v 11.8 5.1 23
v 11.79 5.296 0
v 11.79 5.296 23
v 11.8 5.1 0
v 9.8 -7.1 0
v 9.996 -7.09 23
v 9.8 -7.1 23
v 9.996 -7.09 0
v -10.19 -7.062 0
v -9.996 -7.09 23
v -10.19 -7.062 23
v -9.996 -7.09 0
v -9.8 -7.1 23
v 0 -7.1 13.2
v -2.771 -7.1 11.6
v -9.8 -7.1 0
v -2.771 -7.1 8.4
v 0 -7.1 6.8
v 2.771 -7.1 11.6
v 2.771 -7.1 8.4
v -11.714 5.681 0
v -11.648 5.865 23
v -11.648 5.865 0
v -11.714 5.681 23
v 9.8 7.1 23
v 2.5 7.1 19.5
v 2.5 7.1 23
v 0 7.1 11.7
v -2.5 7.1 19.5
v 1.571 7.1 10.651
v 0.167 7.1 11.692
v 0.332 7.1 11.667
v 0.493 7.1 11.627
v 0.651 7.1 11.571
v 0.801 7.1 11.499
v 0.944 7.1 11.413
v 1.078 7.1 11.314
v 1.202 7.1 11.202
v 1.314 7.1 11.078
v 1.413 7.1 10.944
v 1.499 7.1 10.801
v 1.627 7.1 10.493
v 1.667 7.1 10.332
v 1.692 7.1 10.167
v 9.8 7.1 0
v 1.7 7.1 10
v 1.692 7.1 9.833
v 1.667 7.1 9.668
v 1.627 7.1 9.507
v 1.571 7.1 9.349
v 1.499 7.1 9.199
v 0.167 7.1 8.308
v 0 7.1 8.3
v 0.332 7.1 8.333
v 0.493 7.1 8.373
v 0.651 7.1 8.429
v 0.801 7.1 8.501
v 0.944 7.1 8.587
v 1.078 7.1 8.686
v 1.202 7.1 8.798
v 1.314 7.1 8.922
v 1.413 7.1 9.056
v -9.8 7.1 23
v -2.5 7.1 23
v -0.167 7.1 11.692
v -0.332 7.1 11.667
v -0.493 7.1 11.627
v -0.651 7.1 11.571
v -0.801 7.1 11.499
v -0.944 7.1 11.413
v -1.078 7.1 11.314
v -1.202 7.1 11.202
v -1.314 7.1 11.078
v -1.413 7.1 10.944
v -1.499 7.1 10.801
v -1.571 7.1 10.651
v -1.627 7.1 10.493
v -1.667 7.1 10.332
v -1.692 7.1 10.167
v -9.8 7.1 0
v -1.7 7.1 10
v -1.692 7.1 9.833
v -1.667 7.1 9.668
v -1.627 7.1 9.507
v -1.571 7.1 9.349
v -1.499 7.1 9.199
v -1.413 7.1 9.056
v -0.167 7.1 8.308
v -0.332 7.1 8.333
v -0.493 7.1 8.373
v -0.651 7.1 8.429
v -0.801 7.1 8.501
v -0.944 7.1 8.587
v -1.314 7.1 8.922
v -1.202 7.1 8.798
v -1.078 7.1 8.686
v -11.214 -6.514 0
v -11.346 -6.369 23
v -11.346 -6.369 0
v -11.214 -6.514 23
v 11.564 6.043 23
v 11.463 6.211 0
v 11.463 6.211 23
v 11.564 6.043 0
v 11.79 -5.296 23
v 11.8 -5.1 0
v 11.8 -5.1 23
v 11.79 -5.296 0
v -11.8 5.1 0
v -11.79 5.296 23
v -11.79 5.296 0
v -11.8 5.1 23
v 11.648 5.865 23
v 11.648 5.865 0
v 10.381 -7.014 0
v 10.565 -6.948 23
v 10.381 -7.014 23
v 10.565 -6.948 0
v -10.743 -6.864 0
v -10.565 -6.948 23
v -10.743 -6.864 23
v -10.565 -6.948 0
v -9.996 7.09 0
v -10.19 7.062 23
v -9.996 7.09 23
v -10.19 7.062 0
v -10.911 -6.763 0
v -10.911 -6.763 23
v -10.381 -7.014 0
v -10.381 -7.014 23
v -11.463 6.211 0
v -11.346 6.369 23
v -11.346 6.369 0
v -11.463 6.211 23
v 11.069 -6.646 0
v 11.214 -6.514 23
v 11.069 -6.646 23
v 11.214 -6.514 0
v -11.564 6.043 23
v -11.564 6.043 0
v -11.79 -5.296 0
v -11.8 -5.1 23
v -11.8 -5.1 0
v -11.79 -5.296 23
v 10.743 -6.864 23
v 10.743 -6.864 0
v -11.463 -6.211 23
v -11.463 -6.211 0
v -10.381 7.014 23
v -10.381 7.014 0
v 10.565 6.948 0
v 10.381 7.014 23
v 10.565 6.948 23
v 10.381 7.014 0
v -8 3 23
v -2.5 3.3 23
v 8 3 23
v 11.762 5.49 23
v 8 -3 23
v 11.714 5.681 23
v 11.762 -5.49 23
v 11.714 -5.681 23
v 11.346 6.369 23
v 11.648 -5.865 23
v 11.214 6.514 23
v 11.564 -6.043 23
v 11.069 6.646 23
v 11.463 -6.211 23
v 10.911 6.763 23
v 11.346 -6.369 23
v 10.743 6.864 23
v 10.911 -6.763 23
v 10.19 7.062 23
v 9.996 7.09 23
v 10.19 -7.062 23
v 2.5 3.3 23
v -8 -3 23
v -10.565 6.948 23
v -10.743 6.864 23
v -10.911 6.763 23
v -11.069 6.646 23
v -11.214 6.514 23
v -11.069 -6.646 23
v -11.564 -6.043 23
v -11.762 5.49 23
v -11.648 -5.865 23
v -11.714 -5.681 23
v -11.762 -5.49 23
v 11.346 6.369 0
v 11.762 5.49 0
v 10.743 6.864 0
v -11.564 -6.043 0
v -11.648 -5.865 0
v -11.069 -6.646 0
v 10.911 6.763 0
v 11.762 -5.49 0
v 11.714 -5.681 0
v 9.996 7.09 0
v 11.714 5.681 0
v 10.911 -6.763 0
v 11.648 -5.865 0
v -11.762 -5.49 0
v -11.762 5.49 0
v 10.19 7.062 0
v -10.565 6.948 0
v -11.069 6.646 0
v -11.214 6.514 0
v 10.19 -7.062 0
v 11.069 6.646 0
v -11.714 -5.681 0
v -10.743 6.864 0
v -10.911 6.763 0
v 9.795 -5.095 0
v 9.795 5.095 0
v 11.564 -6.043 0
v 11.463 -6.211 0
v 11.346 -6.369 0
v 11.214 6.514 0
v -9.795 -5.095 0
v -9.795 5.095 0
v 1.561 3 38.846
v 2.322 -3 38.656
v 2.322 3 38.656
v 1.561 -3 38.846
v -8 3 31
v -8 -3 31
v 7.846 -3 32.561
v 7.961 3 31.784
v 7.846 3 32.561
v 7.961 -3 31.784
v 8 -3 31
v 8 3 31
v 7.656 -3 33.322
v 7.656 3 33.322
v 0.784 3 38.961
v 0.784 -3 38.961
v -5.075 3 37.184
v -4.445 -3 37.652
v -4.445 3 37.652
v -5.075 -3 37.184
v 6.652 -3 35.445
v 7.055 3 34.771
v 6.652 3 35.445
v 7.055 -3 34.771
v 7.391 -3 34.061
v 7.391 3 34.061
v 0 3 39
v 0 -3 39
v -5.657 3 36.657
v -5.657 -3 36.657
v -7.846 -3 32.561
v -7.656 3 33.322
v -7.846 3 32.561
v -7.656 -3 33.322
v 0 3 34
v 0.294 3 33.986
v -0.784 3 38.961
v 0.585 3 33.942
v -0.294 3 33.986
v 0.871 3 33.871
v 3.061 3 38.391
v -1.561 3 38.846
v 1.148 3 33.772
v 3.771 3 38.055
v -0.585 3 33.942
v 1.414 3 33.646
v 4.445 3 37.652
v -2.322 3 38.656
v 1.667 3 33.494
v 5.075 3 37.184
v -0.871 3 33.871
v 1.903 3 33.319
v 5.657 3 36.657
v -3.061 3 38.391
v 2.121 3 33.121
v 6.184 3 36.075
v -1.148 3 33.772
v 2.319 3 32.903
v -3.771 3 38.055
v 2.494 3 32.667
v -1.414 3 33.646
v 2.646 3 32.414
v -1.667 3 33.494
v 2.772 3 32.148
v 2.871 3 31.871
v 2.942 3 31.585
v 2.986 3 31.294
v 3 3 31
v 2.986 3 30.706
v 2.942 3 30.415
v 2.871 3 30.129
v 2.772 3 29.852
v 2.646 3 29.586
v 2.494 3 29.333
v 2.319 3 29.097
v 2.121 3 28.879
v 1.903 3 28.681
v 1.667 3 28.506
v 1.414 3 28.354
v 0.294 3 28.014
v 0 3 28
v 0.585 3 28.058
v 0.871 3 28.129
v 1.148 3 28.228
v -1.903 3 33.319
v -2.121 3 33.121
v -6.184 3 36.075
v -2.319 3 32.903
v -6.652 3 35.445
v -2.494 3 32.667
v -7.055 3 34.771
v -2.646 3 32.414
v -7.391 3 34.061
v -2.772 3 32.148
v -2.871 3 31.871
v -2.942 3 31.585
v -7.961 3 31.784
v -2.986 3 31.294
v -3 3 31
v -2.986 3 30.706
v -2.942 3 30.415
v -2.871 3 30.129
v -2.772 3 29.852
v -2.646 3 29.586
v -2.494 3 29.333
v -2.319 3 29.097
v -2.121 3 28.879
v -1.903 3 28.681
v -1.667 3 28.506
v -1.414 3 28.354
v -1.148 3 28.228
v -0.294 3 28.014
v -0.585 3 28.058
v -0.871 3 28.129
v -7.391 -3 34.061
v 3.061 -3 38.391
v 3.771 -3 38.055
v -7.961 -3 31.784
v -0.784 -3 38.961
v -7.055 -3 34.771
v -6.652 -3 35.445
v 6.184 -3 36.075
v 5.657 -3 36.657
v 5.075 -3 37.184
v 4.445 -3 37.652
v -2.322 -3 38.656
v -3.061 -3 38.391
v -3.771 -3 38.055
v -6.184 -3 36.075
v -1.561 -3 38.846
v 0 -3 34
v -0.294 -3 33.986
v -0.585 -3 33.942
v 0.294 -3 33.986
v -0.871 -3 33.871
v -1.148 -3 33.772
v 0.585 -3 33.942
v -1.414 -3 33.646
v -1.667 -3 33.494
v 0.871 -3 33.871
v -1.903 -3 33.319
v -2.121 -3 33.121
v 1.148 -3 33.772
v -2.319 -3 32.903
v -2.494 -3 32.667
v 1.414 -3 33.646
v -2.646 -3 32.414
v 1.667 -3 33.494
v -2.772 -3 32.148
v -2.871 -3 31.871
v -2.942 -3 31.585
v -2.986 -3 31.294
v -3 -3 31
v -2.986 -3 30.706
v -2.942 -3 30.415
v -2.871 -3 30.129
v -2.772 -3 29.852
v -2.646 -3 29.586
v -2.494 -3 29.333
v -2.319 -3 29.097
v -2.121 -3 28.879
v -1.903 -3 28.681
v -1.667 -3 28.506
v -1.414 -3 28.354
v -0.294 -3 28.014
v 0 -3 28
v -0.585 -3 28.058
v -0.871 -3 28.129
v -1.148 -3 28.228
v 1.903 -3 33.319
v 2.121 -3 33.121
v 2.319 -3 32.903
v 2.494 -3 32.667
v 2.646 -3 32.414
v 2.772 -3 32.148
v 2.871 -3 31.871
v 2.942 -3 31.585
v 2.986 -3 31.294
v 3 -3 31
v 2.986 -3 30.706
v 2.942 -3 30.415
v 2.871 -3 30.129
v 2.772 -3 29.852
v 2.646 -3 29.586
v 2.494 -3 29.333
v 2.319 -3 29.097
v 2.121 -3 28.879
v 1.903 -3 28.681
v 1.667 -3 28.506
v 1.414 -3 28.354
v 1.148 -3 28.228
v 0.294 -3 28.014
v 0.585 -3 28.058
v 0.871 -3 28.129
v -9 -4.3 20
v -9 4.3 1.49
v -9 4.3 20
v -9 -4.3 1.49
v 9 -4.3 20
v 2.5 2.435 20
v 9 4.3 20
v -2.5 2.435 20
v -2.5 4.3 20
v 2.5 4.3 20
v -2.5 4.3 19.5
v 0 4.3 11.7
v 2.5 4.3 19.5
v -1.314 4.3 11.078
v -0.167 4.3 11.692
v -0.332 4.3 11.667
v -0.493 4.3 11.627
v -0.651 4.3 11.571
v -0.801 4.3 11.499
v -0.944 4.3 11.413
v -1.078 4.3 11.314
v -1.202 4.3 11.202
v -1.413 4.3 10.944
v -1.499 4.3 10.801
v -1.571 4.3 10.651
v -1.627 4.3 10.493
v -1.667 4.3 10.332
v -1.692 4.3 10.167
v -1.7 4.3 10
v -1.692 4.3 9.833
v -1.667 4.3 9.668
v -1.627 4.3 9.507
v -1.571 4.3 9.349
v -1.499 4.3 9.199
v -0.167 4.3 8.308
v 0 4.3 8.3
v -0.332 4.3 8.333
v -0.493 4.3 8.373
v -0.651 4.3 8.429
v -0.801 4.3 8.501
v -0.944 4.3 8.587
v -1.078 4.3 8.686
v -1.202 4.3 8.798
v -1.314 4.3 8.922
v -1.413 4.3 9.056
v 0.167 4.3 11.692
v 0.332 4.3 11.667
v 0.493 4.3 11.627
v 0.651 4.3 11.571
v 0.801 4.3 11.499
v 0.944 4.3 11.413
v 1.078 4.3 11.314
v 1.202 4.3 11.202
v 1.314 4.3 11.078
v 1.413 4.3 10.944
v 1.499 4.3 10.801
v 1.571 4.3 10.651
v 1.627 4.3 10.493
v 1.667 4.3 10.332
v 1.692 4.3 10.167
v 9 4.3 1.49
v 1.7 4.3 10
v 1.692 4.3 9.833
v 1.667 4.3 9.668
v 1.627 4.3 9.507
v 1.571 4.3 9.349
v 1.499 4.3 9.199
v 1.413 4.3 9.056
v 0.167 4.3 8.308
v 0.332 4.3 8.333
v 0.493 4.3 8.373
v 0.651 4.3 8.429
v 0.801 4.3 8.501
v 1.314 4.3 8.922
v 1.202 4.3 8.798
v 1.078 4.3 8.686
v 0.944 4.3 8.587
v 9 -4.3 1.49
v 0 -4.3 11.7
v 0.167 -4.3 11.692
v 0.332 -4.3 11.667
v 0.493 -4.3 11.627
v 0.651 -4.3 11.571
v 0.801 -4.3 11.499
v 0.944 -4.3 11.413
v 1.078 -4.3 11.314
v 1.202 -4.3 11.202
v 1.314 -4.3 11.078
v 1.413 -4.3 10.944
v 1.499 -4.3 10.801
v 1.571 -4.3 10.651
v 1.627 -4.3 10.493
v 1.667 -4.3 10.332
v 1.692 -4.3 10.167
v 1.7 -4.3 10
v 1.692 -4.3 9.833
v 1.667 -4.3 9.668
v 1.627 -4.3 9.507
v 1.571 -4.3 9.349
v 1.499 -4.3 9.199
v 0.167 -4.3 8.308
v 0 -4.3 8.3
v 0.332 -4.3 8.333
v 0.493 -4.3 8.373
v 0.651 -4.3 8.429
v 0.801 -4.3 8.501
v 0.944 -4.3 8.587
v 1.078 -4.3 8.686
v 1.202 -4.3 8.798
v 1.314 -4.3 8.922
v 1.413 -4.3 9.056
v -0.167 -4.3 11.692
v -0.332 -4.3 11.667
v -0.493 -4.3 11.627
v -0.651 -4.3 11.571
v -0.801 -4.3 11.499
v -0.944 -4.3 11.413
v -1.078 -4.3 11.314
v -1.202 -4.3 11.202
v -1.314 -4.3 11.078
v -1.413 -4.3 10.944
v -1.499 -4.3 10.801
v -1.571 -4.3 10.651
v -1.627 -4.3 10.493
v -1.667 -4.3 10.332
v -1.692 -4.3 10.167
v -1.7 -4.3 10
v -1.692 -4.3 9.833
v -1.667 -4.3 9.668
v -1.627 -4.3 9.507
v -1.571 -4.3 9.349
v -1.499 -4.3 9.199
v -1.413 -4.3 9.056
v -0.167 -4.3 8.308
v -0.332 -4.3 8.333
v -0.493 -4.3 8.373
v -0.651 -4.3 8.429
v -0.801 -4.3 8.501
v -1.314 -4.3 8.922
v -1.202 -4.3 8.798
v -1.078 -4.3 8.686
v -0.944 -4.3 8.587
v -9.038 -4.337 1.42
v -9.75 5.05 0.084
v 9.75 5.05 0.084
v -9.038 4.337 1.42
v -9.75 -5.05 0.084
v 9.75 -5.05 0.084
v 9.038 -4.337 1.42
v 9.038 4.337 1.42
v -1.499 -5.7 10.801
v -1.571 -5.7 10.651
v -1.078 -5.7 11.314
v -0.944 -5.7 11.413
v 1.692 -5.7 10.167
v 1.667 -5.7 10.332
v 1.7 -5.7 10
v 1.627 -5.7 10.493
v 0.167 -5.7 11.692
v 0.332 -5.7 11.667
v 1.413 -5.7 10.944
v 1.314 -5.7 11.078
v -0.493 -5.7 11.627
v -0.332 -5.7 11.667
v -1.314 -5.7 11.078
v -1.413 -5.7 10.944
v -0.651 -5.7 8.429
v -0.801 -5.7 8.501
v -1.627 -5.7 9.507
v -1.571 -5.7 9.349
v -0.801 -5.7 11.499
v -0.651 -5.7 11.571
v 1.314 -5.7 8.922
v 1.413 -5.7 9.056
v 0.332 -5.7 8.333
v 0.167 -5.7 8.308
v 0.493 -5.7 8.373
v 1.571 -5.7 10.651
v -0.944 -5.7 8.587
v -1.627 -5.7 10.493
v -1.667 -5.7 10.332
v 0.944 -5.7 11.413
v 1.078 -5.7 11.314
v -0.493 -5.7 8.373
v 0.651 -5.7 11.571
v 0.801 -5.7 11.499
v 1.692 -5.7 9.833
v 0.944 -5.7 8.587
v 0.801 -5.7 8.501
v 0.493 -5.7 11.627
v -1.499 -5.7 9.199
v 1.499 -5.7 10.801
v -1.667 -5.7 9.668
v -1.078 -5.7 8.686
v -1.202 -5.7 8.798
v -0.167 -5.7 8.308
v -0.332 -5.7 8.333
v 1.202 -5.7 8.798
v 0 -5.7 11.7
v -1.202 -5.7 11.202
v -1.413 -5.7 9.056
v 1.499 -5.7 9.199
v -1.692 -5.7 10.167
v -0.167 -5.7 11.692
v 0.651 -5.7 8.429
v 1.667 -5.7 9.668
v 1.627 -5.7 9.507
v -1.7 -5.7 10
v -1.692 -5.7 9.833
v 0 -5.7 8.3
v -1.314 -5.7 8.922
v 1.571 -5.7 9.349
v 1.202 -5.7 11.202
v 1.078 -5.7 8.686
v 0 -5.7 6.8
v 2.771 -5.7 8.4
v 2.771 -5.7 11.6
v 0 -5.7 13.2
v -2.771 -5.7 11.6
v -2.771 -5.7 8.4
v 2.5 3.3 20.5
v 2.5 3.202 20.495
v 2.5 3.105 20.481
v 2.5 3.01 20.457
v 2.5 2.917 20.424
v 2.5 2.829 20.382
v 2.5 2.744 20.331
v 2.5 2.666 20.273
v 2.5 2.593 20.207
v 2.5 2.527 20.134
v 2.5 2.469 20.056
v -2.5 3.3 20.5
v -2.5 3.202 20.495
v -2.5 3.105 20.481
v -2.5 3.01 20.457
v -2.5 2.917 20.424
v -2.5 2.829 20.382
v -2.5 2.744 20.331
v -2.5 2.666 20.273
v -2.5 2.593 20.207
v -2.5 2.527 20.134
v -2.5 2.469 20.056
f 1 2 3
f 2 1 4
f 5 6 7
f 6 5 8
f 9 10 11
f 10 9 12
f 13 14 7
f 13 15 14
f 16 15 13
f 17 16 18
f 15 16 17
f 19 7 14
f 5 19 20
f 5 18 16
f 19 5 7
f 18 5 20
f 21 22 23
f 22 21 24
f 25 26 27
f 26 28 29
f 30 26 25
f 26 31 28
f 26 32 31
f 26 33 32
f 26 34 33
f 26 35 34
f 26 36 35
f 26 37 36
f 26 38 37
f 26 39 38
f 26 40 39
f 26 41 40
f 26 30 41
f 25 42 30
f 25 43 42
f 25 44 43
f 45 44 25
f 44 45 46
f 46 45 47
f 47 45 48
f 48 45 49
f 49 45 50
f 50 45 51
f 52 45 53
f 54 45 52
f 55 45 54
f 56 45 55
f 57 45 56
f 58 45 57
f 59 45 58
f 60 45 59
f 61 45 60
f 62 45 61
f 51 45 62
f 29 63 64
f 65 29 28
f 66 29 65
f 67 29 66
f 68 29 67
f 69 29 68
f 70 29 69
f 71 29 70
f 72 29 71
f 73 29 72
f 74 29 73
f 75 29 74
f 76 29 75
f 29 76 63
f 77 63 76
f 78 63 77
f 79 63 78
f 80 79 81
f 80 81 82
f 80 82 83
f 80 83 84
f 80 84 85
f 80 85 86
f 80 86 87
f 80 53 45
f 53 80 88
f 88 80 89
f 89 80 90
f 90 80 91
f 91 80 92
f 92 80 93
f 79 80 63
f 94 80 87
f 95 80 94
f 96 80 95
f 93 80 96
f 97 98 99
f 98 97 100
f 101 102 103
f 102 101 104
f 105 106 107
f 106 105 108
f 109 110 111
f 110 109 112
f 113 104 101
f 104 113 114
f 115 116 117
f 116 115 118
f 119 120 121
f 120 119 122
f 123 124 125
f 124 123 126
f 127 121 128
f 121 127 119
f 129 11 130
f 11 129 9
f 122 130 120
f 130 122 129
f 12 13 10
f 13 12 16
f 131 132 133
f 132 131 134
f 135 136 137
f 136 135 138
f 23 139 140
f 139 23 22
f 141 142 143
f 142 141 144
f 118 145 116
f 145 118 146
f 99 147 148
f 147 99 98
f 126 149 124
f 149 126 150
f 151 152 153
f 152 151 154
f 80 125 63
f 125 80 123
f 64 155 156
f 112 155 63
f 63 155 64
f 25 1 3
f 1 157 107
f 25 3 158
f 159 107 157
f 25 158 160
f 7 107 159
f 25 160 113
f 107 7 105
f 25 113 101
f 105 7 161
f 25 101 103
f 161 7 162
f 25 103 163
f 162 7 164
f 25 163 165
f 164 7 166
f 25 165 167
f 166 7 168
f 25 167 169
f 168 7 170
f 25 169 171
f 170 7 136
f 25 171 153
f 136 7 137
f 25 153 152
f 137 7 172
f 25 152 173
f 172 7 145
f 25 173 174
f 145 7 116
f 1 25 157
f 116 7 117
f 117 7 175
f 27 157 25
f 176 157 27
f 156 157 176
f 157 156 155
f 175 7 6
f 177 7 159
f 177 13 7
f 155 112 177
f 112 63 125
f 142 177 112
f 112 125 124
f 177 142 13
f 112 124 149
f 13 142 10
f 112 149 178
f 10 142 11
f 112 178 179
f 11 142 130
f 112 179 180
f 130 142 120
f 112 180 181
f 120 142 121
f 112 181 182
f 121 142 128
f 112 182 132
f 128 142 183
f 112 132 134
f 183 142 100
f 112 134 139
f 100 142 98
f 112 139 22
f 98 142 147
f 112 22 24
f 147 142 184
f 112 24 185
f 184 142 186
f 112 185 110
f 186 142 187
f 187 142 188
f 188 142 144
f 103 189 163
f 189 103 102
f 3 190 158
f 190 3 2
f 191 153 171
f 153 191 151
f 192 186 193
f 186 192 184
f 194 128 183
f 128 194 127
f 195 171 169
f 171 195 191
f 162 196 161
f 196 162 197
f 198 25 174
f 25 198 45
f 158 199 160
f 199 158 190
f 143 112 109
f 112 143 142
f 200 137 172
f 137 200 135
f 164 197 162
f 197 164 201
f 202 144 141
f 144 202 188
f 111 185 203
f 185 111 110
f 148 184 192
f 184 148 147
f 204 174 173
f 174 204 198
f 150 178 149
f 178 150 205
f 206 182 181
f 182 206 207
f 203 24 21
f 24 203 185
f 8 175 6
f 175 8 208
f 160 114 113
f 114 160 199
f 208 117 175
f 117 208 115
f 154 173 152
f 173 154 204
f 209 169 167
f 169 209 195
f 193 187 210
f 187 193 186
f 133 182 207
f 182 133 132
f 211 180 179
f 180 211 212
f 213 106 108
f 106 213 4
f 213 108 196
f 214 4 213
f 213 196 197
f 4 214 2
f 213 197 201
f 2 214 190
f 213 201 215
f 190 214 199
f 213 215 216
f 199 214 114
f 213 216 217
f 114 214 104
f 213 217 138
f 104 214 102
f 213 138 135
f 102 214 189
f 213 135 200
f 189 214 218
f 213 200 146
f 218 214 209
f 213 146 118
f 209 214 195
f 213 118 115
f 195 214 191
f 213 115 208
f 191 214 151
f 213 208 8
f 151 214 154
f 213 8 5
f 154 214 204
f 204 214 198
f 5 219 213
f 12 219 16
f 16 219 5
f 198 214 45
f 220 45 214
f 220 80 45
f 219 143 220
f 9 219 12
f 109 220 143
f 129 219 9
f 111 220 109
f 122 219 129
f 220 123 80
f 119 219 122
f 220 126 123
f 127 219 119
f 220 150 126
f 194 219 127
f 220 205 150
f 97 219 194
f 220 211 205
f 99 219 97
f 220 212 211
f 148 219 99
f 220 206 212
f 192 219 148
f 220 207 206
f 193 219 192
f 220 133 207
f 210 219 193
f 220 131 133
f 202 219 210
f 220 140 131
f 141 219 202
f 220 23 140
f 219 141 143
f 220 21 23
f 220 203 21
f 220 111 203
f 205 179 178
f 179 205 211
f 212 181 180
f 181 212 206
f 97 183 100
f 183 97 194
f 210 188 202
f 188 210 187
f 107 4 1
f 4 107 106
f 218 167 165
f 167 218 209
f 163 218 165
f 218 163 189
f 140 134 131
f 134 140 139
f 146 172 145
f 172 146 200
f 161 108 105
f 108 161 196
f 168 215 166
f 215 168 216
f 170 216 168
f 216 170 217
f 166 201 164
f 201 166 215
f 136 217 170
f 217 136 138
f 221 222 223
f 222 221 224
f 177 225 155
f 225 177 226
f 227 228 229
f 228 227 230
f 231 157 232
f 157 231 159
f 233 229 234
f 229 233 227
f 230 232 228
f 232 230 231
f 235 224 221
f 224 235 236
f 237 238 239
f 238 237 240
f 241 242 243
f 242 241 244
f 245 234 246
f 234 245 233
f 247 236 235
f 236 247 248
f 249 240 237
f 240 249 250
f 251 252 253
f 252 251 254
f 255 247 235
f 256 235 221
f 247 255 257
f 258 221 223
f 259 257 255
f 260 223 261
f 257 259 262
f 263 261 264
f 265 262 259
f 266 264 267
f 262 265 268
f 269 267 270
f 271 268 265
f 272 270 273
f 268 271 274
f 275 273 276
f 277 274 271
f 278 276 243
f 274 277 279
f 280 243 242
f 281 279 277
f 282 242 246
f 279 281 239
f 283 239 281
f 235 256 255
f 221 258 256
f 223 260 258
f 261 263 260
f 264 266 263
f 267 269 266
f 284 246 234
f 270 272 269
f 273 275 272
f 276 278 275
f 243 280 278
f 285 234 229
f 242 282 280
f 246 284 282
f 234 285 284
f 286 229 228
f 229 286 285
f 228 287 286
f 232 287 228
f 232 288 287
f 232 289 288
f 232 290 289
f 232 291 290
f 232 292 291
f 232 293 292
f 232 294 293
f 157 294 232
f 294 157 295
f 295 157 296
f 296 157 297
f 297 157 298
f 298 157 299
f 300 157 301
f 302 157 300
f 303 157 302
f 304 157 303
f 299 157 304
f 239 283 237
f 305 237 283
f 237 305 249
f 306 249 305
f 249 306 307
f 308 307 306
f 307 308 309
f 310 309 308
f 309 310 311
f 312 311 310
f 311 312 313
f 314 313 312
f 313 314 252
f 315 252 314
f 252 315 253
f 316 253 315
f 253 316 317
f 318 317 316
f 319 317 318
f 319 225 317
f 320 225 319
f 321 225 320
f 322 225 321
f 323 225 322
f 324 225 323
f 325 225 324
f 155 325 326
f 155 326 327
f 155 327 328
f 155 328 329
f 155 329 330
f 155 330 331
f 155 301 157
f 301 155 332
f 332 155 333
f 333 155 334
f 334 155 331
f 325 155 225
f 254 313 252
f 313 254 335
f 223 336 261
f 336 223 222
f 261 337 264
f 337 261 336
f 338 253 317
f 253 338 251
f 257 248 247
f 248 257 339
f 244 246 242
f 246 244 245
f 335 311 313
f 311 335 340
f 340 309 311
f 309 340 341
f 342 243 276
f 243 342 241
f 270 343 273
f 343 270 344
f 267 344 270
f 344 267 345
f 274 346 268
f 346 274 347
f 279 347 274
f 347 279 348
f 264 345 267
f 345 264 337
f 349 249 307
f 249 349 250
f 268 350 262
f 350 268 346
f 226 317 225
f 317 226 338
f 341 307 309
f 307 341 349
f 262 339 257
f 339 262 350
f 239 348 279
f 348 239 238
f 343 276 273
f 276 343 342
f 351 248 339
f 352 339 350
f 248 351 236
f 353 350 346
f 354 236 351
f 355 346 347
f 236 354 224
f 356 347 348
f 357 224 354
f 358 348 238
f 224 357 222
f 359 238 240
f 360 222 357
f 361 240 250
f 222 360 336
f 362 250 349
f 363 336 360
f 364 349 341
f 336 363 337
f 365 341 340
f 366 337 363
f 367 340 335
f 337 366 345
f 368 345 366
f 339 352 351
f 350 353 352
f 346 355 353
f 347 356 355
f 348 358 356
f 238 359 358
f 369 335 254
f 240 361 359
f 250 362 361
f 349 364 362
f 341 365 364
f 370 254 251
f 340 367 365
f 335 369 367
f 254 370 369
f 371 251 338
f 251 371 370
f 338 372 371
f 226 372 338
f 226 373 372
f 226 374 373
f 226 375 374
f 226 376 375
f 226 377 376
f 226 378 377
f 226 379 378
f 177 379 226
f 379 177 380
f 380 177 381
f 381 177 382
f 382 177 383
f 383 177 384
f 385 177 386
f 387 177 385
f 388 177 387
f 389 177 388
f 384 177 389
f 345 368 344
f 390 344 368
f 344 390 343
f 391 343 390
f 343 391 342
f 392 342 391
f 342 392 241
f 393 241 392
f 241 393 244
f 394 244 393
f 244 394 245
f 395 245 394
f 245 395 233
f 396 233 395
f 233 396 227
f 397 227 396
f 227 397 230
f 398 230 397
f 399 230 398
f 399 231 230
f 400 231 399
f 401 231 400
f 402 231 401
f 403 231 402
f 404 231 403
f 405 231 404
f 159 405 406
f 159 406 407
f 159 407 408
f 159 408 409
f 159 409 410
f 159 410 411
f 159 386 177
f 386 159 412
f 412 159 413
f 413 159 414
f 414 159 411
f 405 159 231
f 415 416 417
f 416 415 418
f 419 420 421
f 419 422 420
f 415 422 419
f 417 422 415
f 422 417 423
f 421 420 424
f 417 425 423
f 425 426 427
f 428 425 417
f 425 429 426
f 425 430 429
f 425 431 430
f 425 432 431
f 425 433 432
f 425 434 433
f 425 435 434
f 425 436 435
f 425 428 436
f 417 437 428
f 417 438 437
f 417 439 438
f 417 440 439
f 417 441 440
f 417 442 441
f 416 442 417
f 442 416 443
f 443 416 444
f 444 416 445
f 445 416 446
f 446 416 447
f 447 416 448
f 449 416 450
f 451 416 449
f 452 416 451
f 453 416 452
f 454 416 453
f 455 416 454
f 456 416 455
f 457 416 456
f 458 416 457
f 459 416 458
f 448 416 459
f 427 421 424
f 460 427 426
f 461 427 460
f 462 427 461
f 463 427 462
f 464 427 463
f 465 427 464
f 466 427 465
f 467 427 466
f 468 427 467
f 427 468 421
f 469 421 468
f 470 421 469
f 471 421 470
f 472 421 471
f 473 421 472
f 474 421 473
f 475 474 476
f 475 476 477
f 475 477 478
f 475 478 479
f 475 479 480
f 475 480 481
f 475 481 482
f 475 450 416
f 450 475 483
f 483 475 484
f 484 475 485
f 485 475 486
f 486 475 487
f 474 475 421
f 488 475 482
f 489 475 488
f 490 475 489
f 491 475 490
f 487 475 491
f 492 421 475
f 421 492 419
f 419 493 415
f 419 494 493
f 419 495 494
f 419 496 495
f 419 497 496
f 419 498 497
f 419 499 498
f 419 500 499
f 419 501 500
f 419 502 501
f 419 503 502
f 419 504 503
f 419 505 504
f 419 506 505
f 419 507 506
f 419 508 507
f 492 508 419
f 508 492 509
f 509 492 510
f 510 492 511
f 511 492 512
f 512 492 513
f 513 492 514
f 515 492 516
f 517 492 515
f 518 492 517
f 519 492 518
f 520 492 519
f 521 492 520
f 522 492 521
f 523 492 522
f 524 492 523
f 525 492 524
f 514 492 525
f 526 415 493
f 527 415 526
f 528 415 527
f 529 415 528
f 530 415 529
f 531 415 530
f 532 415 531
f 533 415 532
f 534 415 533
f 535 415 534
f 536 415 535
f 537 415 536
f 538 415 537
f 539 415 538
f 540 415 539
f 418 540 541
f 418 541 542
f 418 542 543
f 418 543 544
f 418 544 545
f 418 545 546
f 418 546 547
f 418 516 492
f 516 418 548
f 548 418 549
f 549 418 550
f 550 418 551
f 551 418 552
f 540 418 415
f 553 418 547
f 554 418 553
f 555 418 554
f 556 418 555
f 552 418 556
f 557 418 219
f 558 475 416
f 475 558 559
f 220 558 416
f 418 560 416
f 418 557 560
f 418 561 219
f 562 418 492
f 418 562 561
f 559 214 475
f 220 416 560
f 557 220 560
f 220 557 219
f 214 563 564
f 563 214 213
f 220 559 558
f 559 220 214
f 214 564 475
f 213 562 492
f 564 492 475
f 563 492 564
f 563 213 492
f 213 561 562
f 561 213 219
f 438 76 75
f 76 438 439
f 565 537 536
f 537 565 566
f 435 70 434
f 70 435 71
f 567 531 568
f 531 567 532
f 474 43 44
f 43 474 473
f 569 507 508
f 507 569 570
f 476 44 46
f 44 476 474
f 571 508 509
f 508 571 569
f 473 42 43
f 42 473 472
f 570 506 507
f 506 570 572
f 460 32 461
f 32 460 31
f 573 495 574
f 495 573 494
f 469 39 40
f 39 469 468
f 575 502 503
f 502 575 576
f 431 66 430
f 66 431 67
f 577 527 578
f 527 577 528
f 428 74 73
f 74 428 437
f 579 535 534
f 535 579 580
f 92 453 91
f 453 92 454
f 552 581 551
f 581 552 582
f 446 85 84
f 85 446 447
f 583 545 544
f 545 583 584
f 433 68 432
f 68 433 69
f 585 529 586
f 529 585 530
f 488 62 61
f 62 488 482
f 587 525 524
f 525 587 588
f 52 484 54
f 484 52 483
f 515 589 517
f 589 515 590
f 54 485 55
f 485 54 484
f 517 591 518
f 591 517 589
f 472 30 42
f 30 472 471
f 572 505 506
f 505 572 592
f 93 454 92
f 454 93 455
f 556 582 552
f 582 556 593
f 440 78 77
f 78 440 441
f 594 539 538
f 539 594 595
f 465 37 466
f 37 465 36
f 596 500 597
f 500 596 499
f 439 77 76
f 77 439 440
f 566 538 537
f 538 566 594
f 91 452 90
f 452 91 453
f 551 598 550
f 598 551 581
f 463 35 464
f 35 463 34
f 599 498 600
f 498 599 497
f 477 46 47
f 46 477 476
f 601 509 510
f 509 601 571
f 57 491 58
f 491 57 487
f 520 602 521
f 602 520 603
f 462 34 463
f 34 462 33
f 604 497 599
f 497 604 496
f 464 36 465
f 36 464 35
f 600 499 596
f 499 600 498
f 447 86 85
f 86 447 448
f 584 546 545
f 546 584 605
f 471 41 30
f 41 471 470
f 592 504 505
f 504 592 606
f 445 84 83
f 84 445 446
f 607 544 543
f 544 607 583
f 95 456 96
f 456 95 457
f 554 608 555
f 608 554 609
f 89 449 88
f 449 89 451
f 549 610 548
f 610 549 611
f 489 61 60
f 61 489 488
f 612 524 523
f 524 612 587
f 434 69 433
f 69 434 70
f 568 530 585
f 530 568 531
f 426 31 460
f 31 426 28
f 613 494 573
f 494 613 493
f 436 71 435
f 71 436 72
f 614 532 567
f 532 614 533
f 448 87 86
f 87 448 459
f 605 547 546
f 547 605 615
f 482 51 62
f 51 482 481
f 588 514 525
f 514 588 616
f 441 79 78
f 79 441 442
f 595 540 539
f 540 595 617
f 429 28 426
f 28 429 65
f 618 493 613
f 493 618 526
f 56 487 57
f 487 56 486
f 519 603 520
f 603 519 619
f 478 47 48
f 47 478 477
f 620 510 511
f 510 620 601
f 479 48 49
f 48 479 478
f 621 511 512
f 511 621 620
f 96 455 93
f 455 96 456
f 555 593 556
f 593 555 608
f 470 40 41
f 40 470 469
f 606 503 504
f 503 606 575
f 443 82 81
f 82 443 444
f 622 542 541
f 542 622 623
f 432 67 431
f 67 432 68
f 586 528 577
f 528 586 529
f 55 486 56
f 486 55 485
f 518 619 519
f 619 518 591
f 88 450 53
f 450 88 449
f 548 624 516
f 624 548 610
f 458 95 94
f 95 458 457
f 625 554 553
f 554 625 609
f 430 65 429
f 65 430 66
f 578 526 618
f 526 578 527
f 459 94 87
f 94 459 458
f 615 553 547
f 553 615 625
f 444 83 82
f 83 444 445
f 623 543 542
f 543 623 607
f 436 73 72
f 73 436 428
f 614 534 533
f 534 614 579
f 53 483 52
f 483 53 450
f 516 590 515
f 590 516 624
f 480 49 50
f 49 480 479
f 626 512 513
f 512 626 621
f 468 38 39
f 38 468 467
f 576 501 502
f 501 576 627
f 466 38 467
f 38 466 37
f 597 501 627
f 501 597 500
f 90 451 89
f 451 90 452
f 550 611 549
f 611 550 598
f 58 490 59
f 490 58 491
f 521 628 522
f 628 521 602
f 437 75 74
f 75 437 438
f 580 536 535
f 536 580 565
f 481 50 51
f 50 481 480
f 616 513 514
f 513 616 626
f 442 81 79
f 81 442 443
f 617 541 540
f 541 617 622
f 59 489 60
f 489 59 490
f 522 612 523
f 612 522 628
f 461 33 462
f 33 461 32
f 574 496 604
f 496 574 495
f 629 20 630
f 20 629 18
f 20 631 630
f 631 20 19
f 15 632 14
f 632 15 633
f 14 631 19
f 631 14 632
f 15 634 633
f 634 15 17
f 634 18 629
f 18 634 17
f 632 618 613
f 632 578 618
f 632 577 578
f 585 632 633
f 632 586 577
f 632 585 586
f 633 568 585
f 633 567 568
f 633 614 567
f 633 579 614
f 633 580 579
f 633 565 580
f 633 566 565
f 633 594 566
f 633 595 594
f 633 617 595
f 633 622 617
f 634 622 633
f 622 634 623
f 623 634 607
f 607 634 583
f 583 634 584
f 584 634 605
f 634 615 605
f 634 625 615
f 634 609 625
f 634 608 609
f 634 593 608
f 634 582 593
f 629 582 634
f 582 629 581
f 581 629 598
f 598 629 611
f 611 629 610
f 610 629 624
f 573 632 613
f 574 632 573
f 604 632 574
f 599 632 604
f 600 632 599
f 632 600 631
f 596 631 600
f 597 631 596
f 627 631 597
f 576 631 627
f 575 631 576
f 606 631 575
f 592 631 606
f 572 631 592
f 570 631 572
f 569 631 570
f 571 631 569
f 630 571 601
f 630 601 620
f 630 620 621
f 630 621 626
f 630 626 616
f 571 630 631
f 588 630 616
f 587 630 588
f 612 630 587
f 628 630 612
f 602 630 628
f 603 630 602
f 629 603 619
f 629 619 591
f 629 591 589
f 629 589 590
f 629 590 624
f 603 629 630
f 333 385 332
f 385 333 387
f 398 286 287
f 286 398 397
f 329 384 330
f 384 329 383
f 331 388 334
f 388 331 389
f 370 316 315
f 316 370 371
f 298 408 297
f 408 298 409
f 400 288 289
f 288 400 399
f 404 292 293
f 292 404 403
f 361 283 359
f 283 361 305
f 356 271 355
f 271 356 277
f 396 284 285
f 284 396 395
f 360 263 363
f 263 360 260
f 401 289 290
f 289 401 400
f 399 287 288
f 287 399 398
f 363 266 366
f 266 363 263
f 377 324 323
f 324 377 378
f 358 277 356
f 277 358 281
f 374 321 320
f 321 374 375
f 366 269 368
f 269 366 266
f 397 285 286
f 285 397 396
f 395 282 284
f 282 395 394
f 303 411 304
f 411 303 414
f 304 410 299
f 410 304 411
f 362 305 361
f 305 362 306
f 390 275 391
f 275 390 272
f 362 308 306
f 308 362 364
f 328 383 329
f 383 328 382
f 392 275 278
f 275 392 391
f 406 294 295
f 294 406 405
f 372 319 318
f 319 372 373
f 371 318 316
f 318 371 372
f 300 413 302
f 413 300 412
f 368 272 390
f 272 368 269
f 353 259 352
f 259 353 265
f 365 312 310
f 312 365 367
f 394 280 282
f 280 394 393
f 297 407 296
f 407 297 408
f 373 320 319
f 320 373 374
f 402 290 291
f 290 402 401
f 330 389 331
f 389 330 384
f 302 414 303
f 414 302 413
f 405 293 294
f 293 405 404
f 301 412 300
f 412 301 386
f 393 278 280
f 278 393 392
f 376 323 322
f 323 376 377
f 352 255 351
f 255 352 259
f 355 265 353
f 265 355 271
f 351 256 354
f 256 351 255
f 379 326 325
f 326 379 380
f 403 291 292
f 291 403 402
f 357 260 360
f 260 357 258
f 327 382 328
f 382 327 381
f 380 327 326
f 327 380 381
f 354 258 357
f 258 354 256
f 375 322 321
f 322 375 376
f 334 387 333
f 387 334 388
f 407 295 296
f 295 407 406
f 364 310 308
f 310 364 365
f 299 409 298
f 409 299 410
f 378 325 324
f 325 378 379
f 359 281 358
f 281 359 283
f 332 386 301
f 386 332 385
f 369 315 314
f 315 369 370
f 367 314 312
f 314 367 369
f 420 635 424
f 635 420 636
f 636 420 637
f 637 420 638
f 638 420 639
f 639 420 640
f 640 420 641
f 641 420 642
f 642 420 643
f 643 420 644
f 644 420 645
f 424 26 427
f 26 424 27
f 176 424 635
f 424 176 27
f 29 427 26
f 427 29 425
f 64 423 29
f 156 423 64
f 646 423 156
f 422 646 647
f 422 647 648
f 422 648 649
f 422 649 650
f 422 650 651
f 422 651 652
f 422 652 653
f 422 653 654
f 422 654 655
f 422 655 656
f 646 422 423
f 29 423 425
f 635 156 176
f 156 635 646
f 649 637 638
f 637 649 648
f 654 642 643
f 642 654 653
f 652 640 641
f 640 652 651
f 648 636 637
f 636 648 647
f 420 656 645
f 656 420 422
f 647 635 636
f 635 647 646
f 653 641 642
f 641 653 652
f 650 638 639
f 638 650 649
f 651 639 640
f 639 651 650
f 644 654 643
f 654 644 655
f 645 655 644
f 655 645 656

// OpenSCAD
// ==================================================
// Závěsná koncovka pro LED profil T-LED N14
// — profil visí svisle za jeden (horní) konec
// Vnější průřez N14 ~17.4 x 8 mm — PŘEMĚŘ ŠUPLEROU!
//
// Montáž: zasunout konec profilu do kapsy, skrz
// boční díry vyvrtat 3 mm díru do hliníku a
// prostrčit šroub M3 s matkou (nese váhu napřímo).
// ==================================================

/* [Profil] */
profile_w = 17.4;    // šířka profilu (vnější)
profile_h = 8.0;     // výška/hloubka profilu (vnější)
clearance = 0.3;     // vůle na zasunutí

/* [Koncovka] */
pocket_depth = 20;   // jak hluboko profil zajede do kapsy
wall         = 2.8;  // tloušťka stěn kolem profilu
top_t        = 3.0;  // tloušťka stropu kapsy

/* [Pojistný šroub M3 napříč] */
pin_d        = 3.4;  // díra na M3 (skrz obě stěny i profil)
pin_offset   = 10;   // vzdálenost osy šroubu od ústí kapsy

/* [Průchodka kabelu] */
cable_d      = 5.0;  // šířka drážky na kabel (2x0.5 ~ 4 mm, dej rezervu)

/* [Závěsné oko] */
eye_hole_d   = 6;    // díra v oku (hák / lanko / vrut do stropu)
eye_ring_w   = 5;    // šířka materiálu kolem díry
eye_t        = 6;    // tloušťka oka

$fn = 64;

// --- odvozené ---
slot_w  = profile_w + 2*clearance;
slot_h  = profile_h + 2*clearance;
body_w  = slot_w + 2*wall;
body_h  = slot_h + 2*wall;
body_len = pocket_depth + top_t;
eye_r_out = eye_hole_d/2 + eye_ring_w;

// ================= TĚLO =================
// Z = osa profilu (svislá), kapsa otevřená dolů (Z=0)
difference() {
    union() {
        // blok kolem kapsy, zaoblené rohy
        linear_extrude(body_len)
            offset(r=2) offset(delta=-2)
                square([body_w, body_h], center=true);

        // závěsné oko nahoře (deska s dírou, v rovině šířky profilu)
        translate([0, 0, body_len])
            rotate([90, 0, 0])
                linear_extrude(eye_t, center=true)
                    hull() {
                        translate([0, eye_r_out]) circle(r=eye_r_out);
                        translate([-eye_r_out, -0.5]) square([2*eye_r_out, 1]);
                    }
    }

    // kapsa na profil
    translate([0, 0, -0.5])
        linear_extrude(pocket_depth + 0.5)
            square([slot_w, slot_h], center=true);

    // náběh u ústí kapsy (snazší zasunutí)
    translate([0, 0, -0.01])
        linear_extrude(1.5, scale=[slot_w/(slot_w+1.6), slot_h/(slot_h+1.6)])
            square([slot_w+1.6, slot_h+1.6], center=true);

    // díra na M3 napříč (skrz obě boční stěny, kolmo na šířku profilu)
    translate([0, 0, pin_offset])
        rotate([90, 0, 0])
            cylinder(d=pin_d, h=body_h + 2, center=true);

    // šestihranná kapsa na matku M3 z jedné strany (volitelné)
    translate([0, -(slot_h/2 + wall) + 1.4, pin_offset])
        rotate([90, 0, 0])
            rotate([0, 0, 30])
                cylinder(d=6.4, h=2.9, center=false, $fn=6);

    // díra v závěsném oku
    translate([0, 0, body_len + eye_r_out])
        rotate([90, 0, 0])
            cylinder(d=eye_hole_d, h=eye_t + 2, center=true);

    // ---- průchodka kabelu ----
    // drážka skrz strop kapsy, otevřená do boku (Y+):
    // kabel se vloží z boku, žádné provlékání konektoru
    translate([-cable_d/2, slot_h/2 - 1, pocket_depth - 0.5])
        cube([cable_d, wall + 2, top_t + 1]);

    // zaoblené dno drážky, ať se kabel neláme o hranu
    translate([0, slot_h/2 - 1, pocket_depth - 0.5])
        rotate([0, 90, 0])
            cylinder(d=2, h=cable_d, center=true);
}
